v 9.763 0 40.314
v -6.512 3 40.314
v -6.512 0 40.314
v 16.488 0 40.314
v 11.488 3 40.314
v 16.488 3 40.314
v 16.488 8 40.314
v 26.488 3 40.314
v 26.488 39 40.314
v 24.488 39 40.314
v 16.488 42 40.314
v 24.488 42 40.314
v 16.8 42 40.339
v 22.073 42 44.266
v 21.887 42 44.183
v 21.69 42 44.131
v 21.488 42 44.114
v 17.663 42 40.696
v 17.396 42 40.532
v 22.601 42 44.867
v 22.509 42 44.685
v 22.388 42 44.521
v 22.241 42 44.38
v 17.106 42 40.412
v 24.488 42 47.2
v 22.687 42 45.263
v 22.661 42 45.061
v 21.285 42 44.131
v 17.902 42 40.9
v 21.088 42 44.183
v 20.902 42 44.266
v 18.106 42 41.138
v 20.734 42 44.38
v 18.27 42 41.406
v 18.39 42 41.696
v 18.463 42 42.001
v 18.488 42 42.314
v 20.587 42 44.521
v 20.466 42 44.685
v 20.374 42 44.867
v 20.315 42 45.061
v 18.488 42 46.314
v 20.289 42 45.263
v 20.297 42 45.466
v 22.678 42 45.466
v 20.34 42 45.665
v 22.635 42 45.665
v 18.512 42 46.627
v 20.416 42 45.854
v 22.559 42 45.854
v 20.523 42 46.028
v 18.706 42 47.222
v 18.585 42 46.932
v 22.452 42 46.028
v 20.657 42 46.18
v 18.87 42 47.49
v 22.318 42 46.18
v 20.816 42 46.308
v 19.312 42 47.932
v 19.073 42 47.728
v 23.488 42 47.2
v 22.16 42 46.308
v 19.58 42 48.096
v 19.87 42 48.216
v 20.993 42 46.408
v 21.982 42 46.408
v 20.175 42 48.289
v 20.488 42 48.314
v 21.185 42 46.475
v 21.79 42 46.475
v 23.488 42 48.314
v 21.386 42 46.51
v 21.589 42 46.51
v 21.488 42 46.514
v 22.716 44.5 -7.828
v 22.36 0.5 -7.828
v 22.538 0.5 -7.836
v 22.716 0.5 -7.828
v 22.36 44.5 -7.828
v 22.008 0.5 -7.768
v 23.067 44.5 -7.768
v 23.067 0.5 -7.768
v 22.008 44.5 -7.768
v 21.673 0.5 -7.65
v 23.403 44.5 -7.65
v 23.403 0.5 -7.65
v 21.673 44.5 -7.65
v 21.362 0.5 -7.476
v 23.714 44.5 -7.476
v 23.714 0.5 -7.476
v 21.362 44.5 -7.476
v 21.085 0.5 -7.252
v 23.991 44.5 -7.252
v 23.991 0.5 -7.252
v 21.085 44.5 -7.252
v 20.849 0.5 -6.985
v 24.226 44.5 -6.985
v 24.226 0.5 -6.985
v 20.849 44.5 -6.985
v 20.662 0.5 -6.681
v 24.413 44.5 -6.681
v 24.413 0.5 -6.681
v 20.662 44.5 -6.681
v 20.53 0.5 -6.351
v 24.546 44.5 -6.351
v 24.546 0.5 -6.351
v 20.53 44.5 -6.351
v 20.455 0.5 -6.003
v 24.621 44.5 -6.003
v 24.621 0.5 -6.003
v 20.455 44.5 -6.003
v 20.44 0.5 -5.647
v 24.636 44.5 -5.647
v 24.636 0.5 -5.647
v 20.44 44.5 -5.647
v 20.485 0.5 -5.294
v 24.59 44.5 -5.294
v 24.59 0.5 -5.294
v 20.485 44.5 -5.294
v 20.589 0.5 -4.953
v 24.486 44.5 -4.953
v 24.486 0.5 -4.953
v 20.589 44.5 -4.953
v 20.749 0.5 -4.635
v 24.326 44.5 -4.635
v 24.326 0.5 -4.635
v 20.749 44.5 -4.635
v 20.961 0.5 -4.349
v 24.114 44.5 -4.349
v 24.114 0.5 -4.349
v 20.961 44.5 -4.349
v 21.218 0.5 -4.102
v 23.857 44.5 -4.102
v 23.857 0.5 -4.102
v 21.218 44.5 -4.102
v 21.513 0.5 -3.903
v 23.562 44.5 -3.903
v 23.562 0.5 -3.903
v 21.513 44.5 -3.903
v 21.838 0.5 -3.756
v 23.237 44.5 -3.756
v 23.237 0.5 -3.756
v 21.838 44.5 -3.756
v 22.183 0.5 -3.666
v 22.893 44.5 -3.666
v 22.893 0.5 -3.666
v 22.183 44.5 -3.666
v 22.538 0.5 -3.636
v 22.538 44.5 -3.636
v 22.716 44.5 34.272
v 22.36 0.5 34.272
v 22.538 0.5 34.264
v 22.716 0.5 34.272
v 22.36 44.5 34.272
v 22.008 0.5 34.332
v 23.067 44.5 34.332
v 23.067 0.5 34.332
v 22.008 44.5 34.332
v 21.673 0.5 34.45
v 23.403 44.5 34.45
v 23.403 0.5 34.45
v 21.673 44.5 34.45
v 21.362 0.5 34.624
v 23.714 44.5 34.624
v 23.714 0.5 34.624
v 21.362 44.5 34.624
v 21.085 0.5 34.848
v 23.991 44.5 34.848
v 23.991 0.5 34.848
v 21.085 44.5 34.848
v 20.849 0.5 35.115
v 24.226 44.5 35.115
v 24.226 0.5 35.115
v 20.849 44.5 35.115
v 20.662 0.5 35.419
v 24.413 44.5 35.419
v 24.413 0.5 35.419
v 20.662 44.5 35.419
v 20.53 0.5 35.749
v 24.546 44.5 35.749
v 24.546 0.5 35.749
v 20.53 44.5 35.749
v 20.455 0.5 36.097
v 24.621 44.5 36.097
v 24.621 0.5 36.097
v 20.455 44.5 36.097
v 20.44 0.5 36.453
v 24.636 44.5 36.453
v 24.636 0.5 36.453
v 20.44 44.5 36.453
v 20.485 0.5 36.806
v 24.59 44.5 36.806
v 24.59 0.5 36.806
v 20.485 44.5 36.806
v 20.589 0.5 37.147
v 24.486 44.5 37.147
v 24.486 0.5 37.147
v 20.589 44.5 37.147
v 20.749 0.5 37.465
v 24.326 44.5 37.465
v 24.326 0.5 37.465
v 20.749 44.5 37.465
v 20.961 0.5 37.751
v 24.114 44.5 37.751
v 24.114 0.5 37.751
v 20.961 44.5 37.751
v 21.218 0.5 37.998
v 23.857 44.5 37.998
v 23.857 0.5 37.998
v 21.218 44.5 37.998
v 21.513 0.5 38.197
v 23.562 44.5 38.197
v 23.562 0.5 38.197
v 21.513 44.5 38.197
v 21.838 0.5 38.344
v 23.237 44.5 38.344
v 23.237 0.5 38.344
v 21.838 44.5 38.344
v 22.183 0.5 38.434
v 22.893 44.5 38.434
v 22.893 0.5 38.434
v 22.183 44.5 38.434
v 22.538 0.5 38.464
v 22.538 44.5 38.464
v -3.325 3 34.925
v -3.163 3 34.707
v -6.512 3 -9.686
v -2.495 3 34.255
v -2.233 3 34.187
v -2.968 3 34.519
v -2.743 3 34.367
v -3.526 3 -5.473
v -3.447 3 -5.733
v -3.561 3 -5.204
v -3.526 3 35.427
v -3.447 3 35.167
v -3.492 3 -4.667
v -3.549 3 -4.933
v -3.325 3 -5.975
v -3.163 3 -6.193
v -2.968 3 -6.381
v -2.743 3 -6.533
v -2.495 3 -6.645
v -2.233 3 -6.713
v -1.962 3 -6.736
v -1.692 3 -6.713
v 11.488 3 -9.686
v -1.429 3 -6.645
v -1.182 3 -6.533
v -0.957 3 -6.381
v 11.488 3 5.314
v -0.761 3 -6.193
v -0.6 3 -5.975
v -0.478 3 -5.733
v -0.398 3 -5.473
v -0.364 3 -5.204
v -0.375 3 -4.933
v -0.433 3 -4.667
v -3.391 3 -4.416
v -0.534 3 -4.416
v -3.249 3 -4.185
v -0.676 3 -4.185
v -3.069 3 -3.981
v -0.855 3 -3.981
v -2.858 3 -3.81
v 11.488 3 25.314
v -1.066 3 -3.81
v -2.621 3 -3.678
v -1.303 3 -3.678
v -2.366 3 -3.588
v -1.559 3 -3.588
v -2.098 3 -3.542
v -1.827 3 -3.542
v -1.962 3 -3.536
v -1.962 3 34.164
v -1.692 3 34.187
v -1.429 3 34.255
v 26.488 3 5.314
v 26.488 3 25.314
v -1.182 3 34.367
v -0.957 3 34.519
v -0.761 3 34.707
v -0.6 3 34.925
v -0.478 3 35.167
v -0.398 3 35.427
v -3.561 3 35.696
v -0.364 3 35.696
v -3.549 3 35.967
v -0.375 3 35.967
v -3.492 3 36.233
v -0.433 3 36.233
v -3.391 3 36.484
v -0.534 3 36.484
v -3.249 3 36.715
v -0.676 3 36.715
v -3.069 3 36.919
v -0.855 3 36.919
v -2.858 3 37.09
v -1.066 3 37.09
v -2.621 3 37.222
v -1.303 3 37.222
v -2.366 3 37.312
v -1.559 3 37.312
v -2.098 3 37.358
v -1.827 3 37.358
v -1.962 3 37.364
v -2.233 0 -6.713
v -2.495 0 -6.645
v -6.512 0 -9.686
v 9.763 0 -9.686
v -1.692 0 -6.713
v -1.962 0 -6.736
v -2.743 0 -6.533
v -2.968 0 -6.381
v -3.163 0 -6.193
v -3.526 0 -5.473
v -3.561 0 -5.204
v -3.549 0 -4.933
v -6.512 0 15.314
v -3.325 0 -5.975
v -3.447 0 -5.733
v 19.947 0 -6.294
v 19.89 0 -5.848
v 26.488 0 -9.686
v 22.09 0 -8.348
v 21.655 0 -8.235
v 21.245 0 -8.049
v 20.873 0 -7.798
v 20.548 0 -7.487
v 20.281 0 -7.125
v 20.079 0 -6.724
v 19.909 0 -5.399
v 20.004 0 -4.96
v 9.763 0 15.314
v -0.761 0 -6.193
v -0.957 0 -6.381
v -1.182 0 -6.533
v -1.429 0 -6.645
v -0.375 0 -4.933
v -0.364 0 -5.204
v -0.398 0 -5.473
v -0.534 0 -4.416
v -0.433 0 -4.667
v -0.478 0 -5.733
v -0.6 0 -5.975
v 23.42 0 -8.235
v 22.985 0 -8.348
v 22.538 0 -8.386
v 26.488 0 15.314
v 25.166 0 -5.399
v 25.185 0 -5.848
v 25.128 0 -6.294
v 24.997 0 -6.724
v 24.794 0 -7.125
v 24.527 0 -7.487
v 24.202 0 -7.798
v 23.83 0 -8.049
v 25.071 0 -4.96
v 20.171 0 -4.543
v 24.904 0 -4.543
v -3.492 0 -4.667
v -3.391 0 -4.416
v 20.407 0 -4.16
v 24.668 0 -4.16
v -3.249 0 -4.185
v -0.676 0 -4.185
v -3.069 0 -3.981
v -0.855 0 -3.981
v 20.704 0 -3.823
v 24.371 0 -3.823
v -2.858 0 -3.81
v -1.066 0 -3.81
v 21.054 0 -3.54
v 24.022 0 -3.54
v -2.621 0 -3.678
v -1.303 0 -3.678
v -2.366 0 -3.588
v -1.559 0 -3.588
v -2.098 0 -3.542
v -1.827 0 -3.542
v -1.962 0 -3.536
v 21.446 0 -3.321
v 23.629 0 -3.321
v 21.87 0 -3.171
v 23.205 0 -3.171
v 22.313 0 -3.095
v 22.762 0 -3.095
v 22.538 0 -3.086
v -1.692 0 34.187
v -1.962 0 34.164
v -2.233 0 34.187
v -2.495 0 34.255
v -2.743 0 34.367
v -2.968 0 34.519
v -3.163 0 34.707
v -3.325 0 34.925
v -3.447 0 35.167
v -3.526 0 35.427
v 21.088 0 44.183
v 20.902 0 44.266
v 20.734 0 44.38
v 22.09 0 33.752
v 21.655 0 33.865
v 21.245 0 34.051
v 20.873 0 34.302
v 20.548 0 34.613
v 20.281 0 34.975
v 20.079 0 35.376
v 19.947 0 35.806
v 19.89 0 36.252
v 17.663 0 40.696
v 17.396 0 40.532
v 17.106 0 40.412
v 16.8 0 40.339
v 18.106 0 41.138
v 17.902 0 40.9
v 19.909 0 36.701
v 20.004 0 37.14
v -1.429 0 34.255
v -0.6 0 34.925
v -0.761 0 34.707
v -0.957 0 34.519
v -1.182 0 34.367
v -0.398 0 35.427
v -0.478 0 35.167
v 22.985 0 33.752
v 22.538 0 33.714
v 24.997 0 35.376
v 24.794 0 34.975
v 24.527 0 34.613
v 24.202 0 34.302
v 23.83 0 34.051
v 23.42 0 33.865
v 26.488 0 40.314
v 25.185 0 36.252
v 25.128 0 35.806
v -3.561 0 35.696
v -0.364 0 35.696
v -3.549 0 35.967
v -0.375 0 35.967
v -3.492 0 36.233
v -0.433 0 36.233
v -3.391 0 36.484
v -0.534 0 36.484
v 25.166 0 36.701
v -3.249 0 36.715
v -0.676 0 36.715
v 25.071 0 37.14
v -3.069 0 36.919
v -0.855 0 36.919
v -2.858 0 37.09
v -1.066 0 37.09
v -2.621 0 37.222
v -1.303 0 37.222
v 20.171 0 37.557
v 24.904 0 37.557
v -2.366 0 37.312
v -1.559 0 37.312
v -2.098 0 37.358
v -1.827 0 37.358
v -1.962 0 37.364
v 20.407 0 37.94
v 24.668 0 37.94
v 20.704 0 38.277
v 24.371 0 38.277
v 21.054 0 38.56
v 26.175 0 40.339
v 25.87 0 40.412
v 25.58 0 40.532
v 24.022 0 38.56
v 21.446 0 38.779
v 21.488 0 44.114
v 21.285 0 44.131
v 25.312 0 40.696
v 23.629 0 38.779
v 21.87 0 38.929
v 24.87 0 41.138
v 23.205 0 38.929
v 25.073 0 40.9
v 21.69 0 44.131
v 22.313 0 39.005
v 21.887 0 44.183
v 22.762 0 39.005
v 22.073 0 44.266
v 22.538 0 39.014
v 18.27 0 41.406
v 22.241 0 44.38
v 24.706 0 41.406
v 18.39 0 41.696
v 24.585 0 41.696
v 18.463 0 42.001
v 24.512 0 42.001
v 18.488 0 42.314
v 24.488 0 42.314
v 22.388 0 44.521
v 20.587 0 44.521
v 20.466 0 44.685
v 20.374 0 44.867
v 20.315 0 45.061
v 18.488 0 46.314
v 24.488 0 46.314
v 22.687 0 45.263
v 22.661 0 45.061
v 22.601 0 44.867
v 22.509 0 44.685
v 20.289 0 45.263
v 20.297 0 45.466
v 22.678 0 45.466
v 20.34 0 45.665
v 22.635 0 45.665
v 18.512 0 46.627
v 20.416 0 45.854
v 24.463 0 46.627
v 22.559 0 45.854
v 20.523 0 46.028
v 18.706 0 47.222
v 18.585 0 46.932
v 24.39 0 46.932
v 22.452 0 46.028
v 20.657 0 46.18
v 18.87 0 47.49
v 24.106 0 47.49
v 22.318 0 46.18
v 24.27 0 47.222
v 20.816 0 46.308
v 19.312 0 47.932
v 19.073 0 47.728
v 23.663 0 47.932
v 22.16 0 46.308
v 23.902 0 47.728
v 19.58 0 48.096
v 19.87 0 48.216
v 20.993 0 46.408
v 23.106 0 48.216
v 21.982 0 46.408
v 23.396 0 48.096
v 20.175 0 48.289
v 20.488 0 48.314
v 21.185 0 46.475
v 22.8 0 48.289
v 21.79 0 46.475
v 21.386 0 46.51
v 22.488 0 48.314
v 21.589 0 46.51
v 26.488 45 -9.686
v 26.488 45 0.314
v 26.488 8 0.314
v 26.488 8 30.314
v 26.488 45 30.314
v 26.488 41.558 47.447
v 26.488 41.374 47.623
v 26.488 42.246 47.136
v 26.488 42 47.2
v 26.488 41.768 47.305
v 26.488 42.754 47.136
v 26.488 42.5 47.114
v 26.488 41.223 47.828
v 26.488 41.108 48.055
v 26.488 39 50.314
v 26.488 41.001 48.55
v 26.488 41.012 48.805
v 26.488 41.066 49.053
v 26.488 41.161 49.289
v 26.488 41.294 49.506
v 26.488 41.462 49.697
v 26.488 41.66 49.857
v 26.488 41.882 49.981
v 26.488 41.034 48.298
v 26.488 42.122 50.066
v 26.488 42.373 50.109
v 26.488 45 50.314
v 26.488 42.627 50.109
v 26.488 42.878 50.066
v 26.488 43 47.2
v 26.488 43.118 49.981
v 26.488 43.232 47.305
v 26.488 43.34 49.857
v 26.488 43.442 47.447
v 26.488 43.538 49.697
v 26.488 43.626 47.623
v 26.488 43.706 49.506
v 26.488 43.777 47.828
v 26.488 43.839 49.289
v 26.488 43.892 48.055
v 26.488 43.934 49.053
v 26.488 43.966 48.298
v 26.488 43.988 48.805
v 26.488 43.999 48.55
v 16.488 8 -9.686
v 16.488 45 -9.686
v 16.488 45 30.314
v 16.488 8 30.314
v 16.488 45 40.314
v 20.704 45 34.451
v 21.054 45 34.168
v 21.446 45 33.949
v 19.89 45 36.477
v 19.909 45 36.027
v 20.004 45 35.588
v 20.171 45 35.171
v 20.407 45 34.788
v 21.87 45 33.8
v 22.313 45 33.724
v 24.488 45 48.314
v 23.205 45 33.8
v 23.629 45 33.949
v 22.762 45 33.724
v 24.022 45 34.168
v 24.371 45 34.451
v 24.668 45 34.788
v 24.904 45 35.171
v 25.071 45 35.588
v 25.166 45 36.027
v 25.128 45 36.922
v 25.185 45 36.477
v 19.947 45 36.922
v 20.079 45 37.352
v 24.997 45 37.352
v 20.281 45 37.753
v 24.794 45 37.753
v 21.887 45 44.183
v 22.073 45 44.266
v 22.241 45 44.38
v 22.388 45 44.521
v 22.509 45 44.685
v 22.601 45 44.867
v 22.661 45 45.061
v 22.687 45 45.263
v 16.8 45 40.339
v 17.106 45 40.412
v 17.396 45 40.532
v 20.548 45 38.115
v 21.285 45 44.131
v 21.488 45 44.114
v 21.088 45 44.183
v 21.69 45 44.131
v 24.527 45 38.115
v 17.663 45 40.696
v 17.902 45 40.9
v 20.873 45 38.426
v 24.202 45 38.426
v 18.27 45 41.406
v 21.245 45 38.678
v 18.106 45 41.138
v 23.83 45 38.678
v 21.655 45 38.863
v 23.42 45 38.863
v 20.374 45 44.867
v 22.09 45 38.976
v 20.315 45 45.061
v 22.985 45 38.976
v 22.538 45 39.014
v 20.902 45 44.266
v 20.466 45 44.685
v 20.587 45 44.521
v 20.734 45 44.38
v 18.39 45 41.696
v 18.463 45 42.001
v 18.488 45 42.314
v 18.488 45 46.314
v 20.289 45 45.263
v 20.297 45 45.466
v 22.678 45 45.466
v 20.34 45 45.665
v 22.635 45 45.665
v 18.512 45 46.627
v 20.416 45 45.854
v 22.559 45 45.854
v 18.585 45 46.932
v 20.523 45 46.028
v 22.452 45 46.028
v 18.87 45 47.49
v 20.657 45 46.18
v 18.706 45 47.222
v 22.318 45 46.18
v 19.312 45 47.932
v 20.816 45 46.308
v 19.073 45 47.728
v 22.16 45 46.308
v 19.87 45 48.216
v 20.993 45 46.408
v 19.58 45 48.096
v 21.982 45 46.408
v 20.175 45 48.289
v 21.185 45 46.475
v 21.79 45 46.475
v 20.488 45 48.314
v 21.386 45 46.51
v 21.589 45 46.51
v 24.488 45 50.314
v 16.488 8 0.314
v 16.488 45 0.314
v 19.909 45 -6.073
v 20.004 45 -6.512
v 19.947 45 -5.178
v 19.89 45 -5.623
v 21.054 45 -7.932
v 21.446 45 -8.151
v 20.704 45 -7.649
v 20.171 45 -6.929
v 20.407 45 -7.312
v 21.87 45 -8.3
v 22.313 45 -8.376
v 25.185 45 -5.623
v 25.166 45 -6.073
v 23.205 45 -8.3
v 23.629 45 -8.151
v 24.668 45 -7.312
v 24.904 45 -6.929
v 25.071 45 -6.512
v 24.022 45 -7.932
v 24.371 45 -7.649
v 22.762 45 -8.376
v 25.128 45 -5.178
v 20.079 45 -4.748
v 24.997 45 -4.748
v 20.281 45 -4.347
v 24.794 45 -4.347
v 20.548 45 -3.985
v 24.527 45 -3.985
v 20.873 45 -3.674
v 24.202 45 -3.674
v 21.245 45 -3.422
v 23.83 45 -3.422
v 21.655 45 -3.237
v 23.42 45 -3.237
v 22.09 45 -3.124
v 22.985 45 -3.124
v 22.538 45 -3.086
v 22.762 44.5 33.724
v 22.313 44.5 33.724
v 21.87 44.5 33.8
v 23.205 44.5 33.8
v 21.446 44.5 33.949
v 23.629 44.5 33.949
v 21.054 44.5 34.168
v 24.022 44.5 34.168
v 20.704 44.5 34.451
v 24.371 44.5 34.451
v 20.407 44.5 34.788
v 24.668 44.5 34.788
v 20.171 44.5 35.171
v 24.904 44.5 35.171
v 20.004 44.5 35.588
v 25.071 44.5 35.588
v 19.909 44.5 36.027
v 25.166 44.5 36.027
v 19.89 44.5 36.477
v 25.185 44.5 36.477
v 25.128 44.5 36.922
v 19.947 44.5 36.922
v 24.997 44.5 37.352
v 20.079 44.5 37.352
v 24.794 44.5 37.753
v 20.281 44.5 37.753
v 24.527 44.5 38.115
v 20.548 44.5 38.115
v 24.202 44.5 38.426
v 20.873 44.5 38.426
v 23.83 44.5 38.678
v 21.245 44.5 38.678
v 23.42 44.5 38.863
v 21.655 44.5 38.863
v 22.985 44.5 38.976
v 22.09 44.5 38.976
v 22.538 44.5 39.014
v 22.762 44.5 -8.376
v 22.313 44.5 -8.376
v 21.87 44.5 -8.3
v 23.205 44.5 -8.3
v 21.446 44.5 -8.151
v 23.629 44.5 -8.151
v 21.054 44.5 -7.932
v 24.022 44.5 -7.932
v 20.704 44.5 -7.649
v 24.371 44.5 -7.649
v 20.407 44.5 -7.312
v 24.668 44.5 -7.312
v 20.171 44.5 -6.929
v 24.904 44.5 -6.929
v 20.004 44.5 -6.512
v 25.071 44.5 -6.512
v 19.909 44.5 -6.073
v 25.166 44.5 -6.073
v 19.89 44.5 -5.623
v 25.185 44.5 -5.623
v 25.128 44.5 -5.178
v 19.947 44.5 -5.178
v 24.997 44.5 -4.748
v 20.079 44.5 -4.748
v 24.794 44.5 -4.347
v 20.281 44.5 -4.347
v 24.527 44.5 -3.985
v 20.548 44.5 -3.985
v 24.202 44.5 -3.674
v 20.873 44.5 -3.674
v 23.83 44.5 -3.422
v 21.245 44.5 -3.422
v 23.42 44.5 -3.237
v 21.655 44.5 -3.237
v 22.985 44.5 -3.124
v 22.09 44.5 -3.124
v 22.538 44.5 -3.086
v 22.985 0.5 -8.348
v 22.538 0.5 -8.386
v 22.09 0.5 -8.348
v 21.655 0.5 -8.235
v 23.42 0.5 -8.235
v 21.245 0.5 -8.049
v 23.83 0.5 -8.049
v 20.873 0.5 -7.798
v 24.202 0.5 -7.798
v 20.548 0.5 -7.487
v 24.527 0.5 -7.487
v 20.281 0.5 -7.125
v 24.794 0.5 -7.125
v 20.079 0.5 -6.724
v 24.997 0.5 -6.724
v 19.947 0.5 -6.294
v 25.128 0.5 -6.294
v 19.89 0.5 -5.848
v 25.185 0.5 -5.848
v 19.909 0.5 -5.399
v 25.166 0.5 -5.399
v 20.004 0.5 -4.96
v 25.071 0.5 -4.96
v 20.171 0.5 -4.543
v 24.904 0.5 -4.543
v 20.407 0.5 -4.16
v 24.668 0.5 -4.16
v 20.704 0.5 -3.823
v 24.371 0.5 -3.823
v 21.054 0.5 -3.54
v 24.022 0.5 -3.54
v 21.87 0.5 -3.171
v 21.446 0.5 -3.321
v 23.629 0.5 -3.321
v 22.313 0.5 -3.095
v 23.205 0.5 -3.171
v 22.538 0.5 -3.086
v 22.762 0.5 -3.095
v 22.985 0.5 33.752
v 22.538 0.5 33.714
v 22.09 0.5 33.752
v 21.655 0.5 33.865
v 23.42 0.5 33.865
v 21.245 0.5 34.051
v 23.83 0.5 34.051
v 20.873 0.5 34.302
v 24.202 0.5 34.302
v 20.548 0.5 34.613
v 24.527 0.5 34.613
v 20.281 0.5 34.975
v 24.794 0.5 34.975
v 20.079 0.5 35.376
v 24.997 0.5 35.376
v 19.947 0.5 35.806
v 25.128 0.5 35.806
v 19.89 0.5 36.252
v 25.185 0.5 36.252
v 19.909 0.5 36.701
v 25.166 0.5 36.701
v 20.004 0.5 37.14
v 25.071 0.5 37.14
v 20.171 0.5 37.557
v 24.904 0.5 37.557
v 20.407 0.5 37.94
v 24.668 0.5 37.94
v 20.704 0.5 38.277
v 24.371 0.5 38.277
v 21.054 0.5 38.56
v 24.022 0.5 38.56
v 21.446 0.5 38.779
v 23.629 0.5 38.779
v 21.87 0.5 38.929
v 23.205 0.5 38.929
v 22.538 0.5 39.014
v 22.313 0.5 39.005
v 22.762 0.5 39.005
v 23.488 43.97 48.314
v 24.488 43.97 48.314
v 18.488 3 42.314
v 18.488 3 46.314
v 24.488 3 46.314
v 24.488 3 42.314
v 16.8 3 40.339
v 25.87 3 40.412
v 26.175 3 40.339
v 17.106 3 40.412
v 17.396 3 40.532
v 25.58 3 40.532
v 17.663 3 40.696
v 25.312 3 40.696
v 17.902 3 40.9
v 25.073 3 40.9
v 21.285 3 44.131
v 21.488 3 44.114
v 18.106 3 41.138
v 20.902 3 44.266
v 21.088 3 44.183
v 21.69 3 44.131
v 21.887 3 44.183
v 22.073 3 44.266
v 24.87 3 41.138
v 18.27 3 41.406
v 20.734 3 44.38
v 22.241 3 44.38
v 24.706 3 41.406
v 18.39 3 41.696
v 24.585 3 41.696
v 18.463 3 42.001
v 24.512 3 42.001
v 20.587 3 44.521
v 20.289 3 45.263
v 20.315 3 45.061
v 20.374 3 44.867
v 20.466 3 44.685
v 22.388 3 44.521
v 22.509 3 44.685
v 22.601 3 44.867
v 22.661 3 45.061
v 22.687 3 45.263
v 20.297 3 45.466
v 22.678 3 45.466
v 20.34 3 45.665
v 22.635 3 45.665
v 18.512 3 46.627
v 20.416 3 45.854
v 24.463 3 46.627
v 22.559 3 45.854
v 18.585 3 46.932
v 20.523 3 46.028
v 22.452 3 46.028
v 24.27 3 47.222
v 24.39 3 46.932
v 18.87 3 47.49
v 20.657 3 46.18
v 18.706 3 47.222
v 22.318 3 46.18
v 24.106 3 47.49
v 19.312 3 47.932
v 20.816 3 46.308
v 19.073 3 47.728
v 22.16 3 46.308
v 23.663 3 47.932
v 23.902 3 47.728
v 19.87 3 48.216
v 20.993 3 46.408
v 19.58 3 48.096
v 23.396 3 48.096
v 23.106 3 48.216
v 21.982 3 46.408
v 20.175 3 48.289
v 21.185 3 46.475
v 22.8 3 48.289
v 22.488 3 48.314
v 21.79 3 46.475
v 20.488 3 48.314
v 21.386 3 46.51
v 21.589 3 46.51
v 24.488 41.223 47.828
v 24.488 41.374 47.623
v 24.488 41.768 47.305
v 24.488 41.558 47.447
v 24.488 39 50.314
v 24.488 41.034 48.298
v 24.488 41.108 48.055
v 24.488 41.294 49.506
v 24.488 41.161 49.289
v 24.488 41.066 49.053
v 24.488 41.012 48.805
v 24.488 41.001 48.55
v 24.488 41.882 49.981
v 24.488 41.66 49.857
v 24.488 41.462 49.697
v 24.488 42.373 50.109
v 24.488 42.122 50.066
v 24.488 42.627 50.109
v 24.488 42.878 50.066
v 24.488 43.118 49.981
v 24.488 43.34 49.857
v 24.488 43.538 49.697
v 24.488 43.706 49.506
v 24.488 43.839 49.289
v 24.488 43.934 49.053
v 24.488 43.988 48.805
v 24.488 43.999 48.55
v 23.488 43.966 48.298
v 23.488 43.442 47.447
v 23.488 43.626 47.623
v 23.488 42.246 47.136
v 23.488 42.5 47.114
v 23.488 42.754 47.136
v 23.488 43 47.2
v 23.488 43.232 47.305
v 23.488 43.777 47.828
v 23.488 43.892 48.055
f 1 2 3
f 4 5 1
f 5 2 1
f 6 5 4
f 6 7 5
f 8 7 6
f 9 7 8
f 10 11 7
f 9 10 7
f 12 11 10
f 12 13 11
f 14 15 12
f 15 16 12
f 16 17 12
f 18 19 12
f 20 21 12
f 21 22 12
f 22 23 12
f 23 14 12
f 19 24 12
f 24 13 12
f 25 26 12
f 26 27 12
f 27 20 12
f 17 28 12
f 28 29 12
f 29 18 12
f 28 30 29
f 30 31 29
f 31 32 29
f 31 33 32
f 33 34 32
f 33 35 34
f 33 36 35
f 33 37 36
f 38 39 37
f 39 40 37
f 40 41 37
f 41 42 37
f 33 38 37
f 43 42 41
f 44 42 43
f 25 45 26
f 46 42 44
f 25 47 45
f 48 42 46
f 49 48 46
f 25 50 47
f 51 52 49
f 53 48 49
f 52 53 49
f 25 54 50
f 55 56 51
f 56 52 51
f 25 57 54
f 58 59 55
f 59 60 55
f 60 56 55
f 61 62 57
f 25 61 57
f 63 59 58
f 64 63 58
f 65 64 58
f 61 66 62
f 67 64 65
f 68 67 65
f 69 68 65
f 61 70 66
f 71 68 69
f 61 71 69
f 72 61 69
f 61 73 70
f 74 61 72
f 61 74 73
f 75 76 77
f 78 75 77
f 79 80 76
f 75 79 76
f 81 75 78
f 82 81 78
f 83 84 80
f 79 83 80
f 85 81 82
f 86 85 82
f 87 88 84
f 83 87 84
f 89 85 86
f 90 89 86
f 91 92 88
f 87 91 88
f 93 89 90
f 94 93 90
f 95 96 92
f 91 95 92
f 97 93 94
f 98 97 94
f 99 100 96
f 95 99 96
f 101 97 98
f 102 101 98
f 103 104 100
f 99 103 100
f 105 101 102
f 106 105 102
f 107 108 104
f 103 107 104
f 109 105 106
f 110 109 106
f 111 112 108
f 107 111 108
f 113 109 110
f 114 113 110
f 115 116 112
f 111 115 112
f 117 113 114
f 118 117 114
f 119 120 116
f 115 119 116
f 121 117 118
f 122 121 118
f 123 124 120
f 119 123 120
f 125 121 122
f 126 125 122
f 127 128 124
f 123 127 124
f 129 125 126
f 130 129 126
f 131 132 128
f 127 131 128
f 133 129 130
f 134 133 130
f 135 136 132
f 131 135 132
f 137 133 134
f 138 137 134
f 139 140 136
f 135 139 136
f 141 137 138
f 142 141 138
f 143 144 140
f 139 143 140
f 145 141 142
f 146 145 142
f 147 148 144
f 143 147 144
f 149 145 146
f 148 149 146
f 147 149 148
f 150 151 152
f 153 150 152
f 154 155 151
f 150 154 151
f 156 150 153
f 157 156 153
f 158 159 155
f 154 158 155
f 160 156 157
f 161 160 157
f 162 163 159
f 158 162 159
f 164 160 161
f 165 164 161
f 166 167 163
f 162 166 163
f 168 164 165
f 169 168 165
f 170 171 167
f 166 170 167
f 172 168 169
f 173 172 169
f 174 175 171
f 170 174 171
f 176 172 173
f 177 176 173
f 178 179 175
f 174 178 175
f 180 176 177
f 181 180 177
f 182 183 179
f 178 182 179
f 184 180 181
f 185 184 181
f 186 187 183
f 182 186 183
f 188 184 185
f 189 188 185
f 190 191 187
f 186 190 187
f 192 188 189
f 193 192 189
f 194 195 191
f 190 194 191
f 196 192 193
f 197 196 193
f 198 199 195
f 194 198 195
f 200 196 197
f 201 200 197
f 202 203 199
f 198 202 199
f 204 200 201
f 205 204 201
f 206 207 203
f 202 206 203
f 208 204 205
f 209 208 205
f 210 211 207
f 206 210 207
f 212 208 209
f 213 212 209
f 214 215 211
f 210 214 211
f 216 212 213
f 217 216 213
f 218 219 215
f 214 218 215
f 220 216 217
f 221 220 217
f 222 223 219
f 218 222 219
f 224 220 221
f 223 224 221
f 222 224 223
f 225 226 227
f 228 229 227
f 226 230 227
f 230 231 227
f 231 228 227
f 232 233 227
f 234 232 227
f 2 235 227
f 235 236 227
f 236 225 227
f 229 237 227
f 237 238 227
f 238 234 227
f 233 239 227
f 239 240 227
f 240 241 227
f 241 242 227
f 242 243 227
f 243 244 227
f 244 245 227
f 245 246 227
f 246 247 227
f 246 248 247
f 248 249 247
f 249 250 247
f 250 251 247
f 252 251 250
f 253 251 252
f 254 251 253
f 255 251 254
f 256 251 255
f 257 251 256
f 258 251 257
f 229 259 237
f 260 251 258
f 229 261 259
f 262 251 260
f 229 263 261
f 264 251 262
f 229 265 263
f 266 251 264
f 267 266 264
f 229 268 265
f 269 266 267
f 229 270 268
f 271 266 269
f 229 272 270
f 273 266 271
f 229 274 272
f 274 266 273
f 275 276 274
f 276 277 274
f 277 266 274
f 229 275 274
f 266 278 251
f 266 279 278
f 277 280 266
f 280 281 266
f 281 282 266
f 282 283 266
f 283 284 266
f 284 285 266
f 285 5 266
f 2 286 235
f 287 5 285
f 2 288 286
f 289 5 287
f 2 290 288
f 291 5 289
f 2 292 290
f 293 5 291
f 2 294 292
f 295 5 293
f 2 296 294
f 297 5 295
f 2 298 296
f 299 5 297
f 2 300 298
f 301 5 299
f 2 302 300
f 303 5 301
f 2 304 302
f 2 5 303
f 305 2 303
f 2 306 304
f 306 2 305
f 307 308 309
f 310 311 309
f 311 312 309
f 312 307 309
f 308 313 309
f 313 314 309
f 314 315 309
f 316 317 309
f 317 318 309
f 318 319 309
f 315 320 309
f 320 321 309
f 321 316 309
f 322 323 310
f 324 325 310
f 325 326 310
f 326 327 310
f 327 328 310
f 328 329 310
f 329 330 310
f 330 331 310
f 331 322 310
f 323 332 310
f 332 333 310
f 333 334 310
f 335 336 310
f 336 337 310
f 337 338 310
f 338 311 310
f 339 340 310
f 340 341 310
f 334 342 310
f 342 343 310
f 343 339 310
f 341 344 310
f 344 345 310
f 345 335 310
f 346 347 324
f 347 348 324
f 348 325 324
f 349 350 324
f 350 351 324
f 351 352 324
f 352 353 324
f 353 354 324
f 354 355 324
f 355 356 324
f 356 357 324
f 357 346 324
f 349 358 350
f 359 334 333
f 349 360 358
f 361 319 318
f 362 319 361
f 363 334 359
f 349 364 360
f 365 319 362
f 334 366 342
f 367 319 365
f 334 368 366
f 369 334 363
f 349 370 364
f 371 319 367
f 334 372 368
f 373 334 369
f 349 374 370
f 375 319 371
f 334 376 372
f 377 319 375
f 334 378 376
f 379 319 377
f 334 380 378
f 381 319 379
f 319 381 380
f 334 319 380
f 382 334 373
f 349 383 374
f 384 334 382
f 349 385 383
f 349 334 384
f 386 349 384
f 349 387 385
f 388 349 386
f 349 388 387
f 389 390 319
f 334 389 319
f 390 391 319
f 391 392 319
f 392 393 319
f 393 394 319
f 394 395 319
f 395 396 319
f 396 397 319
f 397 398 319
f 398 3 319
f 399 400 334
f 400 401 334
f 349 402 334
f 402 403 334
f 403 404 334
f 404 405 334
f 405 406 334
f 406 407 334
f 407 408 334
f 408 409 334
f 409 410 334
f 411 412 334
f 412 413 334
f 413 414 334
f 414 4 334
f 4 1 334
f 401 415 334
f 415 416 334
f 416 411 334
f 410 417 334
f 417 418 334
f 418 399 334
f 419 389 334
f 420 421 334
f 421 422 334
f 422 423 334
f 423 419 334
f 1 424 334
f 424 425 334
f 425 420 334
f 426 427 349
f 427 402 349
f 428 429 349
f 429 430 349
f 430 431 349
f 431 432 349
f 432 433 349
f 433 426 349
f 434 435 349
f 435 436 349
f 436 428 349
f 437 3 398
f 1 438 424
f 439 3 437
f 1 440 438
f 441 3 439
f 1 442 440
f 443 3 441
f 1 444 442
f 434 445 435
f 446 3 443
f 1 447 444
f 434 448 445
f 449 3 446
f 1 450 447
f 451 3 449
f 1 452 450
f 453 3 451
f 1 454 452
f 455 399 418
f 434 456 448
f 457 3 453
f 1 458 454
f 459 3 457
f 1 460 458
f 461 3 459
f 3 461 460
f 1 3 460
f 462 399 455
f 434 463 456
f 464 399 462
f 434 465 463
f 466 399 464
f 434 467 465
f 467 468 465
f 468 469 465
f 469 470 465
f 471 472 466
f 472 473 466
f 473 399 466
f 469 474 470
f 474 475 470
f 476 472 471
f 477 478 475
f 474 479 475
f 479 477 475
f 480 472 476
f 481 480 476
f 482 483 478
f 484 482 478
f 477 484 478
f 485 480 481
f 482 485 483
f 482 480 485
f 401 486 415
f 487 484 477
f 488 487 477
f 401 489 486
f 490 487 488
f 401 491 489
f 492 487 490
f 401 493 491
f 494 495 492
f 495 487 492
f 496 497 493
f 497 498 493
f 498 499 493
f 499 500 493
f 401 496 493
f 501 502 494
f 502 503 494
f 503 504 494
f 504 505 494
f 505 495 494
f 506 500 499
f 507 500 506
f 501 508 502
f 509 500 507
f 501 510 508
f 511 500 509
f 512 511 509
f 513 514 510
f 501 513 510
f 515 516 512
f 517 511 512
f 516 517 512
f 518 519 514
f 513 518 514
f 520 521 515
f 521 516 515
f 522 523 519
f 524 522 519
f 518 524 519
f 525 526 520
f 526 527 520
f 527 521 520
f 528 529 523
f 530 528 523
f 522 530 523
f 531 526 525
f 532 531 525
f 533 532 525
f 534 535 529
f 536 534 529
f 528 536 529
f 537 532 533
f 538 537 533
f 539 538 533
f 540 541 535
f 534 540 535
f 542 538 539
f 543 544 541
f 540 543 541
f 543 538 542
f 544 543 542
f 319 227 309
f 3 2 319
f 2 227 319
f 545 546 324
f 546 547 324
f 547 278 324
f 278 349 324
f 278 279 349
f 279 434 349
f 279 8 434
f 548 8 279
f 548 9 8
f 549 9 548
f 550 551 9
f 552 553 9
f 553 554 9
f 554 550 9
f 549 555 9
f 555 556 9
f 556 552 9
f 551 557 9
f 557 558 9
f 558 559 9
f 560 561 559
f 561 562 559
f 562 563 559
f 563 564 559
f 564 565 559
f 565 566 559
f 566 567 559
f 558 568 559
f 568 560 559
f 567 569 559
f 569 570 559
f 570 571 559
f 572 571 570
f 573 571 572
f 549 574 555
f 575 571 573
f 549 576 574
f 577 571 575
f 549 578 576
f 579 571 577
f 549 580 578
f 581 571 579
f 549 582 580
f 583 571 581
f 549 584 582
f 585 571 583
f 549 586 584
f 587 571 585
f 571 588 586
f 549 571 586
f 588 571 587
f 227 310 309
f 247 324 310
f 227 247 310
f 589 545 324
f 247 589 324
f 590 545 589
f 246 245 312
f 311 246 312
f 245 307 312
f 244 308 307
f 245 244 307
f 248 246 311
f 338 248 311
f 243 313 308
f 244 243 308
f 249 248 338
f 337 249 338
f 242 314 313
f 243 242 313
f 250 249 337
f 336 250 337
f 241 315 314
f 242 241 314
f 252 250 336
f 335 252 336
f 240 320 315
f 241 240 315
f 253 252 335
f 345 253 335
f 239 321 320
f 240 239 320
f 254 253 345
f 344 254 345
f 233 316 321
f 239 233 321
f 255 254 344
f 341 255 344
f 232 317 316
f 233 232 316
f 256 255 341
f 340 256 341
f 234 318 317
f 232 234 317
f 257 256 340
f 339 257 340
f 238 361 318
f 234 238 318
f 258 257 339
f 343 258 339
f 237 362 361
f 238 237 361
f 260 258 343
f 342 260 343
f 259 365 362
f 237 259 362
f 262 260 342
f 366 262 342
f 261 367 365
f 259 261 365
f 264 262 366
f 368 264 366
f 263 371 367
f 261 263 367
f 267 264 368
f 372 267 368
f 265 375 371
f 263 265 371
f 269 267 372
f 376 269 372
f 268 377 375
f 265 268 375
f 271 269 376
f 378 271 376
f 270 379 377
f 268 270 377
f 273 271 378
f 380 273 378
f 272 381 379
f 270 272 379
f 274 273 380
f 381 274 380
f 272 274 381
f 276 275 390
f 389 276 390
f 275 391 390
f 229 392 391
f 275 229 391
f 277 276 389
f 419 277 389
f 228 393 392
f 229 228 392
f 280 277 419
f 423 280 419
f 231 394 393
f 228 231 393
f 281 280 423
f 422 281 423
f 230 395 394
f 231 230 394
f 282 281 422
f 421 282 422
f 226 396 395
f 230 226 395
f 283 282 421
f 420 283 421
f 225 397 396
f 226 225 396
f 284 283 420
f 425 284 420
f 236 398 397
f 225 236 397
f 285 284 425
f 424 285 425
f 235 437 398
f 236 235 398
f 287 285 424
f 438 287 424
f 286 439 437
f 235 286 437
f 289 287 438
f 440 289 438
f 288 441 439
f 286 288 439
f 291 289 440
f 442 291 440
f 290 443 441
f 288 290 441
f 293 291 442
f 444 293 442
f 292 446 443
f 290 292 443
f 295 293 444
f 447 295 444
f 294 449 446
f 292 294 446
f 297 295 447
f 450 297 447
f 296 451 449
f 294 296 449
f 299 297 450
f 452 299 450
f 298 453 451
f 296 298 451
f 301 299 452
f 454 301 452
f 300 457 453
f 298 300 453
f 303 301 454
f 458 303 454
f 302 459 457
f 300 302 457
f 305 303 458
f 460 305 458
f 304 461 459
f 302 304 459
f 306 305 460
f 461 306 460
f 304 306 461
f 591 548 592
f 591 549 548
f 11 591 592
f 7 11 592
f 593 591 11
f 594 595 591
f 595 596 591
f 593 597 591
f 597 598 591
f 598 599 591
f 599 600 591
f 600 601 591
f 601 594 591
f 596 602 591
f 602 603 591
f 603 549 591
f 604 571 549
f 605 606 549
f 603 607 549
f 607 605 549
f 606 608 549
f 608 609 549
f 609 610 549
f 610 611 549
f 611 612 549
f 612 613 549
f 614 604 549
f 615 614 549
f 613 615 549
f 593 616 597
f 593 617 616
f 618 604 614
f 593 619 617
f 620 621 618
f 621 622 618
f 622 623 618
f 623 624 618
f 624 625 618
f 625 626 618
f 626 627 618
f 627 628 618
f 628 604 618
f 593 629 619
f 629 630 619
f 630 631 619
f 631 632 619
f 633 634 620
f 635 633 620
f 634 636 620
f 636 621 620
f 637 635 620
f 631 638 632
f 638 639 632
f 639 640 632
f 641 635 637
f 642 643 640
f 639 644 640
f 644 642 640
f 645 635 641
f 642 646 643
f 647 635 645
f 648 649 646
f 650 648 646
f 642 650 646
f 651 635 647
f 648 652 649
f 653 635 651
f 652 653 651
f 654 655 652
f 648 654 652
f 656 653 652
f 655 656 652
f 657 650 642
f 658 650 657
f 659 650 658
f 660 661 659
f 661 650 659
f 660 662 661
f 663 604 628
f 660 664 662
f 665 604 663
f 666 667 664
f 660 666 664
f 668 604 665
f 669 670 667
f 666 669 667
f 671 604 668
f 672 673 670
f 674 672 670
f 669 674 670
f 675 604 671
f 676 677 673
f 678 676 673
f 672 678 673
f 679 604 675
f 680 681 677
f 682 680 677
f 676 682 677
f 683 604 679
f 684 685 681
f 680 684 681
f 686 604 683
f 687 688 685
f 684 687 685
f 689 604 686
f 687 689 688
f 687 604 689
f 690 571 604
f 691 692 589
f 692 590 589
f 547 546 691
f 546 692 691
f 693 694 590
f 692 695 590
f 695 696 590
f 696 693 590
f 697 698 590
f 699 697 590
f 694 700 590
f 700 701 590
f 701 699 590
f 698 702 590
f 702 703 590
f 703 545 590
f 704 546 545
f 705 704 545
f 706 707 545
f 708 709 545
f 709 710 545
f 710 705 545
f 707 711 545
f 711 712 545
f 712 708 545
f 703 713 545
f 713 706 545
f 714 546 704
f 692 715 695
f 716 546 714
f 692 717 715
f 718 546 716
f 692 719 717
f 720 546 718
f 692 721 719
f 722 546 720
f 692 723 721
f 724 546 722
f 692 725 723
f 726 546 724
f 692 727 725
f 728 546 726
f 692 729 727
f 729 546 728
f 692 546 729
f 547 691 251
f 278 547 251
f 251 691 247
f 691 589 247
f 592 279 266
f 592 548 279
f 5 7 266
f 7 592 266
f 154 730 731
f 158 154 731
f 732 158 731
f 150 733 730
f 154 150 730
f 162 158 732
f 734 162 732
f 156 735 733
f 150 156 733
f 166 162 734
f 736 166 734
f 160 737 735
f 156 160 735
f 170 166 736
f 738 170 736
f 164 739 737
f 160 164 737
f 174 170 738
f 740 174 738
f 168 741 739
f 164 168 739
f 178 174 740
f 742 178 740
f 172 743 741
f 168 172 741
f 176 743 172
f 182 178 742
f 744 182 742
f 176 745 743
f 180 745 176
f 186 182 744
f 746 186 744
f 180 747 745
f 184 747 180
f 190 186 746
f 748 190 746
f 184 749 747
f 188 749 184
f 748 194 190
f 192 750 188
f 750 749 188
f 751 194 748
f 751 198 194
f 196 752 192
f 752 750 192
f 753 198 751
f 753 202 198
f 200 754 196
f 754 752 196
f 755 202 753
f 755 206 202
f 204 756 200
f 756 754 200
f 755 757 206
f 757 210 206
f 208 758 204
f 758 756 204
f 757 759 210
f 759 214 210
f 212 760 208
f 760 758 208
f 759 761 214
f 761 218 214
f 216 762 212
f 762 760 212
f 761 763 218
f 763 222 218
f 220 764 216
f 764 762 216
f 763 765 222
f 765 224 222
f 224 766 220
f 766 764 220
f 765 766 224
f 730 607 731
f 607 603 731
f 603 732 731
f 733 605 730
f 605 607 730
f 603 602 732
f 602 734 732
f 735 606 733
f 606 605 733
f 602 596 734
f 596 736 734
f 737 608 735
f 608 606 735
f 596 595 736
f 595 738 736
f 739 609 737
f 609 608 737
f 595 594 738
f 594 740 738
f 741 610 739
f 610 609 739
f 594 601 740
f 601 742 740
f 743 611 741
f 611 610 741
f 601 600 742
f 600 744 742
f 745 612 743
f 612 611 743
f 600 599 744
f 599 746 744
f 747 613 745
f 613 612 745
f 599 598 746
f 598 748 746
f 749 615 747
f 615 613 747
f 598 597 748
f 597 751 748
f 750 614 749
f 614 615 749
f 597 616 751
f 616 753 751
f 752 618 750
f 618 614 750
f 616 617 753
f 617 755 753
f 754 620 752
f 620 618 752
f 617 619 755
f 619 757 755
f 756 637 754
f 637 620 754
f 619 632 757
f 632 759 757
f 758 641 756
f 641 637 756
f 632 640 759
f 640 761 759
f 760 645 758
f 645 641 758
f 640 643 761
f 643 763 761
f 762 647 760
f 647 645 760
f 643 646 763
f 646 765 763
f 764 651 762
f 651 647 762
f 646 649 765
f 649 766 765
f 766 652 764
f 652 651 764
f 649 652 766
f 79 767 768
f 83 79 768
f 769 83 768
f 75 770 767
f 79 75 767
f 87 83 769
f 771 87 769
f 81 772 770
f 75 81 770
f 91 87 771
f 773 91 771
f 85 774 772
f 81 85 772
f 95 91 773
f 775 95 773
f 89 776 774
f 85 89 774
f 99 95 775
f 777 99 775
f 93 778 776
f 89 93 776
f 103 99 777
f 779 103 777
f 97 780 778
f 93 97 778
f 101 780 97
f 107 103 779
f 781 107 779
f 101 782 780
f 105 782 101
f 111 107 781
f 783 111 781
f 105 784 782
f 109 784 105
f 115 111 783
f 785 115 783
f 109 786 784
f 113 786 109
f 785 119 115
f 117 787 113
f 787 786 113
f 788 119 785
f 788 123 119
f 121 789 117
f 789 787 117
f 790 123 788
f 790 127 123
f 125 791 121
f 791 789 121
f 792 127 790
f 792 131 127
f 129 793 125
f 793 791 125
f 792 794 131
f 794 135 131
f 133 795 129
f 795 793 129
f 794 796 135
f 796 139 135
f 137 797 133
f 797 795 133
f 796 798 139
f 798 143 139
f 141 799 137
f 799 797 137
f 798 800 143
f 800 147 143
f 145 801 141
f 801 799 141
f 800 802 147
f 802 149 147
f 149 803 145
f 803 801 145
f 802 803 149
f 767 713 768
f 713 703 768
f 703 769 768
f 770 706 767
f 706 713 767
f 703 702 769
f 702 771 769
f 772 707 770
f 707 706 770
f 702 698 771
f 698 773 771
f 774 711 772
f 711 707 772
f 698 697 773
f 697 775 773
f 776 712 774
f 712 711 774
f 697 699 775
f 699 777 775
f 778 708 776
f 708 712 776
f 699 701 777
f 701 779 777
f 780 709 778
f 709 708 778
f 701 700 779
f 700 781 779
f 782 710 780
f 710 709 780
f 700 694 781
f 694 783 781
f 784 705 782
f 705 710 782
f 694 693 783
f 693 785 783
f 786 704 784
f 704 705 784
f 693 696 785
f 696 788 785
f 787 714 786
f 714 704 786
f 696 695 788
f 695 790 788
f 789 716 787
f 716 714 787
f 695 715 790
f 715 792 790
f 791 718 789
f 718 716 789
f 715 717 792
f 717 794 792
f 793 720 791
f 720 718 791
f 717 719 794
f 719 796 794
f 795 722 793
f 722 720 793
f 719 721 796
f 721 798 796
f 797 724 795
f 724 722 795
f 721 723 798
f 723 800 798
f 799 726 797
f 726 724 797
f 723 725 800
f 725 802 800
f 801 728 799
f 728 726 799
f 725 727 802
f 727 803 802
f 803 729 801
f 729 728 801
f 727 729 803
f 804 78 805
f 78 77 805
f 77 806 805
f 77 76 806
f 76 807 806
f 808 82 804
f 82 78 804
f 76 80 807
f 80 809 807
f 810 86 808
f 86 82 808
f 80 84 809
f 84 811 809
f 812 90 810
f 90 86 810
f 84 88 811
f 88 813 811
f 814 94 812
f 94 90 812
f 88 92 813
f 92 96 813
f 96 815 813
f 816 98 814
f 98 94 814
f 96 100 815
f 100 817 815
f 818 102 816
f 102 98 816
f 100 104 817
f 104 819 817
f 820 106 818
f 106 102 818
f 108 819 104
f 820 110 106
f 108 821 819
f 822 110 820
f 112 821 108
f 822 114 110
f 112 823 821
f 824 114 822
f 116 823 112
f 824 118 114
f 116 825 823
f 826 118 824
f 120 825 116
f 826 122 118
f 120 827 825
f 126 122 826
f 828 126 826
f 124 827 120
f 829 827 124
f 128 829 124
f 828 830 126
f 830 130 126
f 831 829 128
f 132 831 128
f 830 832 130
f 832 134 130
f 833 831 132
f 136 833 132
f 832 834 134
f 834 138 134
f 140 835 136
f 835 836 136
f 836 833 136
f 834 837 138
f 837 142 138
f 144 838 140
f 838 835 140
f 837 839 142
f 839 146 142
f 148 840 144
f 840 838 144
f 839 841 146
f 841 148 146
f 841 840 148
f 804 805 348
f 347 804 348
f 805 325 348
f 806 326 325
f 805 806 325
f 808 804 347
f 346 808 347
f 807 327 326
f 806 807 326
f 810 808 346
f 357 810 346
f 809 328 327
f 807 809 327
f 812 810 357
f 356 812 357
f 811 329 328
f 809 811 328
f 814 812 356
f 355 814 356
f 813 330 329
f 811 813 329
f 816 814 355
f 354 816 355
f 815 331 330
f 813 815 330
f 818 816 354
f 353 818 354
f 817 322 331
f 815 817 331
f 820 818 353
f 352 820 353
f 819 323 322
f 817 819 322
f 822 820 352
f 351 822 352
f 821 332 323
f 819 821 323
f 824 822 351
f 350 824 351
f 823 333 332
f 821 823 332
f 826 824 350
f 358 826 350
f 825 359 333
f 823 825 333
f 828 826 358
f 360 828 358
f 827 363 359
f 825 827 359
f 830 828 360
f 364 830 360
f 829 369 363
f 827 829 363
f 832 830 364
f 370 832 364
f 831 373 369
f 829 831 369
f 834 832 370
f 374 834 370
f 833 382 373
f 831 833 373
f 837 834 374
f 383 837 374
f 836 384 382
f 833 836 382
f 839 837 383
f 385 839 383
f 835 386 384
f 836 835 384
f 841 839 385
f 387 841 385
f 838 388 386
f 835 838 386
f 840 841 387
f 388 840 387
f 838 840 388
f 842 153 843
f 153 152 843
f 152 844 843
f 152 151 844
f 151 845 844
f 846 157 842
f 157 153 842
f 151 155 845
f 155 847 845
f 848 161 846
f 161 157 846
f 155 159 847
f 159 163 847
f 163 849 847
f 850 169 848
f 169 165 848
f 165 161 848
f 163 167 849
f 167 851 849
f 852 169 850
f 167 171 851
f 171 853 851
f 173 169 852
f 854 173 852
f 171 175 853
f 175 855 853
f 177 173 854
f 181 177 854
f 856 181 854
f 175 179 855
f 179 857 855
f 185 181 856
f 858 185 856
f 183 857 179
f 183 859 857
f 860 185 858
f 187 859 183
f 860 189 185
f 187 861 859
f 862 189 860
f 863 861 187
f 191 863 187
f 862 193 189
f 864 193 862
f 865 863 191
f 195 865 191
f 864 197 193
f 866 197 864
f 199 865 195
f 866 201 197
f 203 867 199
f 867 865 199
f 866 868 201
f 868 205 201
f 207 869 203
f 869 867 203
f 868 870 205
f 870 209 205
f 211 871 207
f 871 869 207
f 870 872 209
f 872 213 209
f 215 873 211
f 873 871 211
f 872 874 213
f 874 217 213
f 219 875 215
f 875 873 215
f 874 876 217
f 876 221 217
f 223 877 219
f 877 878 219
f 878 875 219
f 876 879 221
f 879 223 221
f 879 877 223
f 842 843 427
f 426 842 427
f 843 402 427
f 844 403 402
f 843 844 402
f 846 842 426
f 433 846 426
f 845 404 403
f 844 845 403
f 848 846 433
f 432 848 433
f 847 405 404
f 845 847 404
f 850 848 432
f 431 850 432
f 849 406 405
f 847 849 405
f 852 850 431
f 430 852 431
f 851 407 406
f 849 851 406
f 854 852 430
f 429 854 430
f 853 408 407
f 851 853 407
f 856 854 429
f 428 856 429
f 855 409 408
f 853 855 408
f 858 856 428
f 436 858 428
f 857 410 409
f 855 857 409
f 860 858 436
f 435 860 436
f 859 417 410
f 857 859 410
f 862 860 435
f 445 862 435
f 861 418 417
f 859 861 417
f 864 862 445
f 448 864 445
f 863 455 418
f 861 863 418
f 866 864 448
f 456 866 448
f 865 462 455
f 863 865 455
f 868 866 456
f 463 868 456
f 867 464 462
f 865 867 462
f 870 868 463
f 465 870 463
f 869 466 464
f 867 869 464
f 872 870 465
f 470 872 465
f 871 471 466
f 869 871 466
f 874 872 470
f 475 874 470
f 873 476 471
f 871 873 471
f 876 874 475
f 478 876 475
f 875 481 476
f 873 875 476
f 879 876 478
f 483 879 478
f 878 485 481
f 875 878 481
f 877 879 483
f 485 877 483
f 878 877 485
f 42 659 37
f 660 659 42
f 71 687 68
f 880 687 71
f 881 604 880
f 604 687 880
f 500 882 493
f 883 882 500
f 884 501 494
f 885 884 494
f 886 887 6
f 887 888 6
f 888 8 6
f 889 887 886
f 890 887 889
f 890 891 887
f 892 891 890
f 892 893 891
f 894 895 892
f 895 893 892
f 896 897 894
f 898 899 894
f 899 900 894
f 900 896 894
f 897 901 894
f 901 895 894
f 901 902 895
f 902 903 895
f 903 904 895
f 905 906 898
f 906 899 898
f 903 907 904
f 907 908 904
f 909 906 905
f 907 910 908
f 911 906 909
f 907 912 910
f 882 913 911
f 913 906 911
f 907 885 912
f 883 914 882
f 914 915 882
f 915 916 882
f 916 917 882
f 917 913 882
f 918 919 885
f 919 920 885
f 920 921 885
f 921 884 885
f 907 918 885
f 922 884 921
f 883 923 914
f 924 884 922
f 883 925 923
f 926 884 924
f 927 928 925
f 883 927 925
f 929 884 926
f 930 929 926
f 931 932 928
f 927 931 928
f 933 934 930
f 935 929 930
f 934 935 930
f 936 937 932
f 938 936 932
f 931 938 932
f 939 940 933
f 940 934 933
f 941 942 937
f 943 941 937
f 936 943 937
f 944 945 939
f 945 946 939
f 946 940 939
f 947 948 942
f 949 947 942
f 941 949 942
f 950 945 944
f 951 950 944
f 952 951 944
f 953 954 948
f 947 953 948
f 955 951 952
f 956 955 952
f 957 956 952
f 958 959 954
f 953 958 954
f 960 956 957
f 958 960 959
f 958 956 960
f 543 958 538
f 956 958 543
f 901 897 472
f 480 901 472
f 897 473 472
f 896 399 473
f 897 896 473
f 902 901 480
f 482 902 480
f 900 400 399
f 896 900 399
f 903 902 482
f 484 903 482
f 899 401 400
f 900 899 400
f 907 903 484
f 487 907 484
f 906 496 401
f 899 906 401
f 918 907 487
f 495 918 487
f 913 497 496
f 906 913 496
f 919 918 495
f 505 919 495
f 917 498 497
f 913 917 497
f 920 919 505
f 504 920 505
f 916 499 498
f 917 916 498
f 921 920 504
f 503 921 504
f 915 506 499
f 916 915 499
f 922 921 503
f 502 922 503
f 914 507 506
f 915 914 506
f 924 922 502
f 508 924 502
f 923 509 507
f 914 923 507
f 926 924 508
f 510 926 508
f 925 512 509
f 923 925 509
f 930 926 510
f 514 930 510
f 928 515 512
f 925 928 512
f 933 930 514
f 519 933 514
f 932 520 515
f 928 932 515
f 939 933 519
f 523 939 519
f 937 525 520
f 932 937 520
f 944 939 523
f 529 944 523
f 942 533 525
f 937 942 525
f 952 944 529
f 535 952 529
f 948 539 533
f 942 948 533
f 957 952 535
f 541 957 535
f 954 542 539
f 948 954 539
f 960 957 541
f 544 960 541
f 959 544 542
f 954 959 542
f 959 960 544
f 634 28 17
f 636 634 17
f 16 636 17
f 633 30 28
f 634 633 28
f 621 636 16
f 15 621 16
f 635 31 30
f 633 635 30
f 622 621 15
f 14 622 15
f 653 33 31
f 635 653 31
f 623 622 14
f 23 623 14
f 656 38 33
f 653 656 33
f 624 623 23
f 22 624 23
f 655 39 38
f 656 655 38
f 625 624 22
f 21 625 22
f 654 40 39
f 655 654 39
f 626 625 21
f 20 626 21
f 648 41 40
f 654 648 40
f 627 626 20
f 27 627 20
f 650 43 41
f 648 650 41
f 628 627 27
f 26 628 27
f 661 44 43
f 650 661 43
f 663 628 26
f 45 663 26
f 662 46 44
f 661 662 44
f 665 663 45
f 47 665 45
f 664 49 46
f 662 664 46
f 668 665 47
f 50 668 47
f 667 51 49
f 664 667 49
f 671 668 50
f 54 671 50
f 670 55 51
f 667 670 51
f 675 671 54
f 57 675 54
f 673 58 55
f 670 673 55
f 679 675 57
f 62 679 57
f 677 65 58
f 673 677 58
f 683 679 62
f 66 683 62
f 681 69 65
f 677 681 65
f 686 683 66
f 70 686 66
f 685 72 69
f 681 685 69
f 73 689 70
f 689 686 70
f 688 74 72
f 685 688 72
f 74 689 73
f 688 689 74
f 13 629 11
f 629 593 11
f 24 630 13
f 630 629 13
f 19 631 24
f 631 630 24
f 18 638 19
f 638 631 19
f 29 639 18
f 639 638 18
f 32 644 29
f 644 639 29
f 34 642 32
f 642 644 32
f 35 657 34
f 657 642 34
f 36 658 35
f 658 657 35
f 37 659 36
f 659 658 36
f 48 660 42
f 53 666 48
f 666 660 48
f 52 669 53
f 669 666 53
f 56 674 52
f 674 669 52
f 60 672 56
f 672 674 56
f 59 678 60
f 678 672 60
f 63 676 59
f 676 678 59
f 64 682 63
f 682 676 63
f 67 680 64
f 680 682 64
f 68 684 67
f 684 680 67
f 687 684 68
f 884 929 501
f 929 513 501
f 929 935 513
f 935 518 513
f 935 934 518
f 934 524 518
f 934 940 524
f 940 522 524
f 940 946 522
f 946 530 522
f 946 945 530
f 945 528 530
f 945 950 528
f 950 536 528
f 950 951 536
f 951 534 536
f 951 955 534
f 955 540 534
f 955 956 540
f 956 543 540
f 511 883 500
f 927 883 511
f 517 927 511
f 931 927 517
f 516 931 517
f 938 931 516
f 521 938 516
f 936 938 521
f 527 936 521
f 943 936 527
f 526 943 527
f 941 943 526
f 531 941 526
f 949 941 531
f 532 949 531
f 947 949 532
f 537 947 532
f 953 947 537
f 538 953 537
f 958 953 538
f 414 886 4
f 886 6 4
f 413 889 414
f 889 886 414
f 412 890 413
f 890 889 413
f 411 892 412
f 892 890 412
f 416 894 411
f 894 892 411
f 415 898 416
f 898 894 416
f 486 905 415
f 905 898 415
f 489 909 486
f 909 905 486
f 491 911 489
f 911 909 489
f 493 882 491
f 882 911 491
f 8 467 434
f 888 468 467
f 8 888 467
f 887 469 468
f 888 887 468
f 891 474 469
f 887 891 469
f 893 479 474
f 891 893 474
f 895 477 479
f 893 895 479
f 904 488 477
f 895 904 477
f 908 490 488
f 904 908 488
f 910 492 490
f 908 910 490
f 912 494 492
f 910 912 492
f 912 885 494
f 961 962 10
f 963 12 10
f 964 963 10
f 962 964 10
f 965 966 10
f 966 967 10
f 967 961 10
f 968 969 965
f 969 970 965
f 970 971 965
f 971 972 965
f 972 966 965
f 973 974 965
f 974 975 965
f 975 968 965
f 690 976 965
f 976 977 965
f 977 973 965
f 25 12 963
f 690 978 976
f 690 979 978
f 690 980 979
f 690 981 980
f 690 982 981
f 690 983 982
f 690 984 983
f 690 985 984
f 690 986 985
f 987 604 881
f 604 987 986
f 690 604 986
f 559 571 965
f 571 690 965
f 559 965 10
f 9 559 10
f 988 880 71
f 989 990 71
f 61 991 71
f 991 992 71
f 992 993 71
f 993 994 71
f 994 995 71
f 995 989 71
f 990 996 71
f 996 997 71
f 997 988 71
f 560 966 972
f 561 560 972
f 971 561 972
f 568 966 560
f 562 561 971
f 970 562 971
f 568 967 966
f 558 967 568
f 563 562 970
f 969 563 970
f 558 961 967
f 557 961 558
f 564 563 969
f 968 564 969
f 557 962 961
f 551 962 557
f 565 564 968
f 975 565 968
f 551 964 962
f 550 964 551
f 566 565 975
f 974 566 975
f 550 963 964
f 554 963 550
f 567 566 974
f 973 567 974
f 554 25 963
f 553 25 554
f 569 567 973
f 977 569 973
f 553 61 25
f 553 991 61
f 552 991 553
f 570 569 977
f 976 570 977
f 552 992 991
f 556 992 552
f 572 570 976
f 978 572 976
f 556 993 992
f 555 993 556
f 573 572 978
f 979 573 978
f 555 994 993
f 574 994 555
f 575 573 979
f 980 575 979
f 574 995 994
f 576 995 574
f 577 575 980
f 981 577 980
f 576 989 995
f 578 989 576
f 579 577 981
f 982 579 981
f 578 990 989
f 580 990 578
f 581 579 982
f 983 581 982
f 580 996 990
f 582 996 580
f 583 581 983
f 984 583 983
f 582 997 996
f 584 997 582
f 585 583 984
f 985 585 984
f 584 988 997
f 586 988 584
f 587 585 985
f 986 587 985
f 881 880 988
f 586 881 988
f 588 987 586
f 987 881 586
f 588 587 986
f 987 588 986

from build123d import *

# Parameters (mm, degrees)
SKETCH1_R           = 1.6
BOSS_EXTRUDE1_DEPTH = 3
SKETCH2_W           = 10
SKETCH2_H           = 10
BOSS_EXTRUDE2_DEPTH = 42
CHAMFER1_SIZE       = 5
SKETCH3_R           = 2.1
CUT_EXTRUDE1_DEPTH  = 52
SKETCH4_R           = 2.65
CUT_EXTRUDE2_DEPTH  = 0.5
SKETCH11_W          = 6
SKETCH11_H          = 3
BOSS_EXTRUDE7_DEPTH = 8
SKETCH12_R          = 1.2
CUT_EXTRUDE5_DEPTH  = 72.139584736
FILLET1_R           = 2
SKETCH13_W          = 2
SKETCH13_H          = 3
BOSS_EXTRUDE8_DEPTH = 10
SKETCH14_W          = 2
SKETCH14_H          = 10
BOSS_EXTRUDE9_DEPTH = 3
SKETCH15_R          = 1.5
CUT_EXTRUDE6_DEPTH  = 3


with BuildPart() as part:
    # Sketch1 → Boss-Extrude1 (new body)
    with BuildSketch(Plane(origin=(0, 0, 0), x_dir=(1, 0, 0), z_dir=(0, 1, 0))):
        Polygon((-6.512396694, 9.685950413), (1.487603306, 9.685950413), (26.487603306, 9.685950413), (26.487603306, -40.314049587), (1.487603306, -40.314049587), (-6.512396694, -40.314049587), align=None)
        with Locations(Location((-1.962396694, -35.764049587, 0), (0, 0, 270))):
            Circle(SKETCH1_R, mode=Mode.SUBTRACT)
        with Locations(Location((-1.962396694, 5.135950413, 0), (0, 0, 270))):
            Circle(SKETCH1_R, mode=Mode.SUBTRACT)
    extrude(amount=BOSS_EXTRUDE1_DEPTH)

    # Sketch2 → Boss-Extrude2 (add)
    with BuildSketch(Plane(origin=(0, 3, 0), x_dir=(1, 0, 0), z_dir=(0, 1, 0))):
        with Locations((21.487603306, -35.314049587)):
            Rectangle(SKETCH2_W, SKETCH2_H)
        with Locations((21.487603306, 4.685950413)):
            Rectangle(SKETCH2_W, SKETCH2_H)
    extrude(amount=BOSS_EXTRUDE2_DEPTH)

    # Chamfer1
    chamfer1_edges = [part.edges().sort_by_distance(p)[0] for p in [
        (21.487603306, 3, 30.314049587),
        (16.487603306, 3, 35.314049587),
        (16.487603306, 3, -4.685950413),
        (21.487603306, 3, 0.314049587),
    ]]
    chamfer(chamfer1_edges, length=CHAMFER1_SIZE)

    # Sketch3 → Cut-Extrude1 (cut)
    with BuildSketch(Plane(origin=(0, 45, 0), x_dir=(1, 0, 0), z_dir=(0, 1, 0))):
        with Locations(Location((22.537603306, -36.364049587, 0), (0, 0, 270))):
            Circle(SKETCH3_R)
        with Locations(Location((22.537603306, 5.735950413, 0), (0, 0, 270))):
            Circle(SKETCH3_R)
    extrude(amount=-CUT_EXTRUDE1_DEPTH, mode=Mode.SUBTRACT)

    # Sketch4 → Cut-Extrude2 (cut)
    with BuildSketch(Plane(origin=(0, 45, 0), x_dir=(1, 0, 0), z_dir=(0, 1, 0))):
        with Locations(Location((22.537603306, -36.364049587, 0), (0, 0, 270))):
            Circle(SKETCH4_R)
        with Locations(Location((22.537603306, 5.735950413, 0), (0, 0, 270))):
            Circle(SKETCH4_R)
    cut_extrude2 = extrude(amount=-CUT_EXTRUDE2_DEPTH, mode=Mode.SUBTRACT)

    # Mirror1: Cut-Extrude2 across plane
    add(cut_extrude2.mirror(Plane(origin=(0, 22.5, 0), x_dir=(0, 0, 1), z_dir=(0, -1, 0))), mode=Mode.SUBTRACT)

    # Sketch11 → Boss-Extrude7 (add)
    with BuildSketch(Plane.XY.offset(40.314049587)):
        with Locations((21.487603306, 43.5)):
            Rectangle(SKETCH11_W, SKETCH11_H)
        with Locations((21.487603306, 1.5)):
            Rectangle(SKETCH11_W, SKETCH11_H)
    extrude(amount=BOSS_EXTRUDE7_DEPTH)

    # Sketch12 → Cut-Extrude5 (cut, through all)
    with BuildSketch(Plane.XZ):
        with Locations(Location((21.487603306, 45.314049587, 0), (0, 0, 270))):
            Circle(SKETCH12_R)
    extrude(amount=-CUT_EXTRUDE5_DEPTH, mode=Mode.SUBTRACT)

    # Fillet1
    fillet1_edges = [part.edges().sort_by_distance(p)[0] for p in [
        (18.487603306, 43.5, 40.314049587),
        (18.487603306, 1.5, 40.314049587),
        (24.487603306, 1.5, 40.314049587),
    ]]
    fillet(fillet1_edges, radius=FILLET1_R - 0.0001)  # a hair under: the kernel refuses the full size
    fillet1_2_edges = [part.edges().sort_by_distance(p)[0] for p in [
        (18.487603306, 43.5, 48.314049587),
        (24.487603306, 1.5, 48.314049587),
        (18.487603306, 1.5, 48.314049587),
    ]]
    fillet(fillet1_2_edges, radius=FILLET1_R)

    # Sketch13 → Boss-Extrude8 (add)
    with BuildSketch(Plane.XY.offset(40.314049587)):
        with Locations((25.487603306, 43.5)):
            Rectangle(SKETCH13_W, SKETCH13_H)
    extrude(amount=BOSS_EXTRUDE8_DEPTH)

    # Sketch14 → Boss-Extrude9 (add)
    with BuildSketch(Plane.XZ.offset(-42)):
        with Locations((25.487603306, 45.314049587)):
            Rectangle(SKETCH14_W, SKETCH14_H)
    extrude(amount=BOSS_EXTRUDE9_DEPTH)

    # Sketch15 → Cut-Extrude6 (cut)
    with BuildSketch(Plane(origin=(26.487603306, 0, 0), x_dir=(0, 0, -1), z_dir=(1, 0, 0))):
        with Locations((-48.614049587, 42.5)):
            Circle(SKETCH15_R)
    extrude(amount=-CUT_EXTRUDE6_DEPTH, mode=Mode.SUBTRACT)


solid = part.part
